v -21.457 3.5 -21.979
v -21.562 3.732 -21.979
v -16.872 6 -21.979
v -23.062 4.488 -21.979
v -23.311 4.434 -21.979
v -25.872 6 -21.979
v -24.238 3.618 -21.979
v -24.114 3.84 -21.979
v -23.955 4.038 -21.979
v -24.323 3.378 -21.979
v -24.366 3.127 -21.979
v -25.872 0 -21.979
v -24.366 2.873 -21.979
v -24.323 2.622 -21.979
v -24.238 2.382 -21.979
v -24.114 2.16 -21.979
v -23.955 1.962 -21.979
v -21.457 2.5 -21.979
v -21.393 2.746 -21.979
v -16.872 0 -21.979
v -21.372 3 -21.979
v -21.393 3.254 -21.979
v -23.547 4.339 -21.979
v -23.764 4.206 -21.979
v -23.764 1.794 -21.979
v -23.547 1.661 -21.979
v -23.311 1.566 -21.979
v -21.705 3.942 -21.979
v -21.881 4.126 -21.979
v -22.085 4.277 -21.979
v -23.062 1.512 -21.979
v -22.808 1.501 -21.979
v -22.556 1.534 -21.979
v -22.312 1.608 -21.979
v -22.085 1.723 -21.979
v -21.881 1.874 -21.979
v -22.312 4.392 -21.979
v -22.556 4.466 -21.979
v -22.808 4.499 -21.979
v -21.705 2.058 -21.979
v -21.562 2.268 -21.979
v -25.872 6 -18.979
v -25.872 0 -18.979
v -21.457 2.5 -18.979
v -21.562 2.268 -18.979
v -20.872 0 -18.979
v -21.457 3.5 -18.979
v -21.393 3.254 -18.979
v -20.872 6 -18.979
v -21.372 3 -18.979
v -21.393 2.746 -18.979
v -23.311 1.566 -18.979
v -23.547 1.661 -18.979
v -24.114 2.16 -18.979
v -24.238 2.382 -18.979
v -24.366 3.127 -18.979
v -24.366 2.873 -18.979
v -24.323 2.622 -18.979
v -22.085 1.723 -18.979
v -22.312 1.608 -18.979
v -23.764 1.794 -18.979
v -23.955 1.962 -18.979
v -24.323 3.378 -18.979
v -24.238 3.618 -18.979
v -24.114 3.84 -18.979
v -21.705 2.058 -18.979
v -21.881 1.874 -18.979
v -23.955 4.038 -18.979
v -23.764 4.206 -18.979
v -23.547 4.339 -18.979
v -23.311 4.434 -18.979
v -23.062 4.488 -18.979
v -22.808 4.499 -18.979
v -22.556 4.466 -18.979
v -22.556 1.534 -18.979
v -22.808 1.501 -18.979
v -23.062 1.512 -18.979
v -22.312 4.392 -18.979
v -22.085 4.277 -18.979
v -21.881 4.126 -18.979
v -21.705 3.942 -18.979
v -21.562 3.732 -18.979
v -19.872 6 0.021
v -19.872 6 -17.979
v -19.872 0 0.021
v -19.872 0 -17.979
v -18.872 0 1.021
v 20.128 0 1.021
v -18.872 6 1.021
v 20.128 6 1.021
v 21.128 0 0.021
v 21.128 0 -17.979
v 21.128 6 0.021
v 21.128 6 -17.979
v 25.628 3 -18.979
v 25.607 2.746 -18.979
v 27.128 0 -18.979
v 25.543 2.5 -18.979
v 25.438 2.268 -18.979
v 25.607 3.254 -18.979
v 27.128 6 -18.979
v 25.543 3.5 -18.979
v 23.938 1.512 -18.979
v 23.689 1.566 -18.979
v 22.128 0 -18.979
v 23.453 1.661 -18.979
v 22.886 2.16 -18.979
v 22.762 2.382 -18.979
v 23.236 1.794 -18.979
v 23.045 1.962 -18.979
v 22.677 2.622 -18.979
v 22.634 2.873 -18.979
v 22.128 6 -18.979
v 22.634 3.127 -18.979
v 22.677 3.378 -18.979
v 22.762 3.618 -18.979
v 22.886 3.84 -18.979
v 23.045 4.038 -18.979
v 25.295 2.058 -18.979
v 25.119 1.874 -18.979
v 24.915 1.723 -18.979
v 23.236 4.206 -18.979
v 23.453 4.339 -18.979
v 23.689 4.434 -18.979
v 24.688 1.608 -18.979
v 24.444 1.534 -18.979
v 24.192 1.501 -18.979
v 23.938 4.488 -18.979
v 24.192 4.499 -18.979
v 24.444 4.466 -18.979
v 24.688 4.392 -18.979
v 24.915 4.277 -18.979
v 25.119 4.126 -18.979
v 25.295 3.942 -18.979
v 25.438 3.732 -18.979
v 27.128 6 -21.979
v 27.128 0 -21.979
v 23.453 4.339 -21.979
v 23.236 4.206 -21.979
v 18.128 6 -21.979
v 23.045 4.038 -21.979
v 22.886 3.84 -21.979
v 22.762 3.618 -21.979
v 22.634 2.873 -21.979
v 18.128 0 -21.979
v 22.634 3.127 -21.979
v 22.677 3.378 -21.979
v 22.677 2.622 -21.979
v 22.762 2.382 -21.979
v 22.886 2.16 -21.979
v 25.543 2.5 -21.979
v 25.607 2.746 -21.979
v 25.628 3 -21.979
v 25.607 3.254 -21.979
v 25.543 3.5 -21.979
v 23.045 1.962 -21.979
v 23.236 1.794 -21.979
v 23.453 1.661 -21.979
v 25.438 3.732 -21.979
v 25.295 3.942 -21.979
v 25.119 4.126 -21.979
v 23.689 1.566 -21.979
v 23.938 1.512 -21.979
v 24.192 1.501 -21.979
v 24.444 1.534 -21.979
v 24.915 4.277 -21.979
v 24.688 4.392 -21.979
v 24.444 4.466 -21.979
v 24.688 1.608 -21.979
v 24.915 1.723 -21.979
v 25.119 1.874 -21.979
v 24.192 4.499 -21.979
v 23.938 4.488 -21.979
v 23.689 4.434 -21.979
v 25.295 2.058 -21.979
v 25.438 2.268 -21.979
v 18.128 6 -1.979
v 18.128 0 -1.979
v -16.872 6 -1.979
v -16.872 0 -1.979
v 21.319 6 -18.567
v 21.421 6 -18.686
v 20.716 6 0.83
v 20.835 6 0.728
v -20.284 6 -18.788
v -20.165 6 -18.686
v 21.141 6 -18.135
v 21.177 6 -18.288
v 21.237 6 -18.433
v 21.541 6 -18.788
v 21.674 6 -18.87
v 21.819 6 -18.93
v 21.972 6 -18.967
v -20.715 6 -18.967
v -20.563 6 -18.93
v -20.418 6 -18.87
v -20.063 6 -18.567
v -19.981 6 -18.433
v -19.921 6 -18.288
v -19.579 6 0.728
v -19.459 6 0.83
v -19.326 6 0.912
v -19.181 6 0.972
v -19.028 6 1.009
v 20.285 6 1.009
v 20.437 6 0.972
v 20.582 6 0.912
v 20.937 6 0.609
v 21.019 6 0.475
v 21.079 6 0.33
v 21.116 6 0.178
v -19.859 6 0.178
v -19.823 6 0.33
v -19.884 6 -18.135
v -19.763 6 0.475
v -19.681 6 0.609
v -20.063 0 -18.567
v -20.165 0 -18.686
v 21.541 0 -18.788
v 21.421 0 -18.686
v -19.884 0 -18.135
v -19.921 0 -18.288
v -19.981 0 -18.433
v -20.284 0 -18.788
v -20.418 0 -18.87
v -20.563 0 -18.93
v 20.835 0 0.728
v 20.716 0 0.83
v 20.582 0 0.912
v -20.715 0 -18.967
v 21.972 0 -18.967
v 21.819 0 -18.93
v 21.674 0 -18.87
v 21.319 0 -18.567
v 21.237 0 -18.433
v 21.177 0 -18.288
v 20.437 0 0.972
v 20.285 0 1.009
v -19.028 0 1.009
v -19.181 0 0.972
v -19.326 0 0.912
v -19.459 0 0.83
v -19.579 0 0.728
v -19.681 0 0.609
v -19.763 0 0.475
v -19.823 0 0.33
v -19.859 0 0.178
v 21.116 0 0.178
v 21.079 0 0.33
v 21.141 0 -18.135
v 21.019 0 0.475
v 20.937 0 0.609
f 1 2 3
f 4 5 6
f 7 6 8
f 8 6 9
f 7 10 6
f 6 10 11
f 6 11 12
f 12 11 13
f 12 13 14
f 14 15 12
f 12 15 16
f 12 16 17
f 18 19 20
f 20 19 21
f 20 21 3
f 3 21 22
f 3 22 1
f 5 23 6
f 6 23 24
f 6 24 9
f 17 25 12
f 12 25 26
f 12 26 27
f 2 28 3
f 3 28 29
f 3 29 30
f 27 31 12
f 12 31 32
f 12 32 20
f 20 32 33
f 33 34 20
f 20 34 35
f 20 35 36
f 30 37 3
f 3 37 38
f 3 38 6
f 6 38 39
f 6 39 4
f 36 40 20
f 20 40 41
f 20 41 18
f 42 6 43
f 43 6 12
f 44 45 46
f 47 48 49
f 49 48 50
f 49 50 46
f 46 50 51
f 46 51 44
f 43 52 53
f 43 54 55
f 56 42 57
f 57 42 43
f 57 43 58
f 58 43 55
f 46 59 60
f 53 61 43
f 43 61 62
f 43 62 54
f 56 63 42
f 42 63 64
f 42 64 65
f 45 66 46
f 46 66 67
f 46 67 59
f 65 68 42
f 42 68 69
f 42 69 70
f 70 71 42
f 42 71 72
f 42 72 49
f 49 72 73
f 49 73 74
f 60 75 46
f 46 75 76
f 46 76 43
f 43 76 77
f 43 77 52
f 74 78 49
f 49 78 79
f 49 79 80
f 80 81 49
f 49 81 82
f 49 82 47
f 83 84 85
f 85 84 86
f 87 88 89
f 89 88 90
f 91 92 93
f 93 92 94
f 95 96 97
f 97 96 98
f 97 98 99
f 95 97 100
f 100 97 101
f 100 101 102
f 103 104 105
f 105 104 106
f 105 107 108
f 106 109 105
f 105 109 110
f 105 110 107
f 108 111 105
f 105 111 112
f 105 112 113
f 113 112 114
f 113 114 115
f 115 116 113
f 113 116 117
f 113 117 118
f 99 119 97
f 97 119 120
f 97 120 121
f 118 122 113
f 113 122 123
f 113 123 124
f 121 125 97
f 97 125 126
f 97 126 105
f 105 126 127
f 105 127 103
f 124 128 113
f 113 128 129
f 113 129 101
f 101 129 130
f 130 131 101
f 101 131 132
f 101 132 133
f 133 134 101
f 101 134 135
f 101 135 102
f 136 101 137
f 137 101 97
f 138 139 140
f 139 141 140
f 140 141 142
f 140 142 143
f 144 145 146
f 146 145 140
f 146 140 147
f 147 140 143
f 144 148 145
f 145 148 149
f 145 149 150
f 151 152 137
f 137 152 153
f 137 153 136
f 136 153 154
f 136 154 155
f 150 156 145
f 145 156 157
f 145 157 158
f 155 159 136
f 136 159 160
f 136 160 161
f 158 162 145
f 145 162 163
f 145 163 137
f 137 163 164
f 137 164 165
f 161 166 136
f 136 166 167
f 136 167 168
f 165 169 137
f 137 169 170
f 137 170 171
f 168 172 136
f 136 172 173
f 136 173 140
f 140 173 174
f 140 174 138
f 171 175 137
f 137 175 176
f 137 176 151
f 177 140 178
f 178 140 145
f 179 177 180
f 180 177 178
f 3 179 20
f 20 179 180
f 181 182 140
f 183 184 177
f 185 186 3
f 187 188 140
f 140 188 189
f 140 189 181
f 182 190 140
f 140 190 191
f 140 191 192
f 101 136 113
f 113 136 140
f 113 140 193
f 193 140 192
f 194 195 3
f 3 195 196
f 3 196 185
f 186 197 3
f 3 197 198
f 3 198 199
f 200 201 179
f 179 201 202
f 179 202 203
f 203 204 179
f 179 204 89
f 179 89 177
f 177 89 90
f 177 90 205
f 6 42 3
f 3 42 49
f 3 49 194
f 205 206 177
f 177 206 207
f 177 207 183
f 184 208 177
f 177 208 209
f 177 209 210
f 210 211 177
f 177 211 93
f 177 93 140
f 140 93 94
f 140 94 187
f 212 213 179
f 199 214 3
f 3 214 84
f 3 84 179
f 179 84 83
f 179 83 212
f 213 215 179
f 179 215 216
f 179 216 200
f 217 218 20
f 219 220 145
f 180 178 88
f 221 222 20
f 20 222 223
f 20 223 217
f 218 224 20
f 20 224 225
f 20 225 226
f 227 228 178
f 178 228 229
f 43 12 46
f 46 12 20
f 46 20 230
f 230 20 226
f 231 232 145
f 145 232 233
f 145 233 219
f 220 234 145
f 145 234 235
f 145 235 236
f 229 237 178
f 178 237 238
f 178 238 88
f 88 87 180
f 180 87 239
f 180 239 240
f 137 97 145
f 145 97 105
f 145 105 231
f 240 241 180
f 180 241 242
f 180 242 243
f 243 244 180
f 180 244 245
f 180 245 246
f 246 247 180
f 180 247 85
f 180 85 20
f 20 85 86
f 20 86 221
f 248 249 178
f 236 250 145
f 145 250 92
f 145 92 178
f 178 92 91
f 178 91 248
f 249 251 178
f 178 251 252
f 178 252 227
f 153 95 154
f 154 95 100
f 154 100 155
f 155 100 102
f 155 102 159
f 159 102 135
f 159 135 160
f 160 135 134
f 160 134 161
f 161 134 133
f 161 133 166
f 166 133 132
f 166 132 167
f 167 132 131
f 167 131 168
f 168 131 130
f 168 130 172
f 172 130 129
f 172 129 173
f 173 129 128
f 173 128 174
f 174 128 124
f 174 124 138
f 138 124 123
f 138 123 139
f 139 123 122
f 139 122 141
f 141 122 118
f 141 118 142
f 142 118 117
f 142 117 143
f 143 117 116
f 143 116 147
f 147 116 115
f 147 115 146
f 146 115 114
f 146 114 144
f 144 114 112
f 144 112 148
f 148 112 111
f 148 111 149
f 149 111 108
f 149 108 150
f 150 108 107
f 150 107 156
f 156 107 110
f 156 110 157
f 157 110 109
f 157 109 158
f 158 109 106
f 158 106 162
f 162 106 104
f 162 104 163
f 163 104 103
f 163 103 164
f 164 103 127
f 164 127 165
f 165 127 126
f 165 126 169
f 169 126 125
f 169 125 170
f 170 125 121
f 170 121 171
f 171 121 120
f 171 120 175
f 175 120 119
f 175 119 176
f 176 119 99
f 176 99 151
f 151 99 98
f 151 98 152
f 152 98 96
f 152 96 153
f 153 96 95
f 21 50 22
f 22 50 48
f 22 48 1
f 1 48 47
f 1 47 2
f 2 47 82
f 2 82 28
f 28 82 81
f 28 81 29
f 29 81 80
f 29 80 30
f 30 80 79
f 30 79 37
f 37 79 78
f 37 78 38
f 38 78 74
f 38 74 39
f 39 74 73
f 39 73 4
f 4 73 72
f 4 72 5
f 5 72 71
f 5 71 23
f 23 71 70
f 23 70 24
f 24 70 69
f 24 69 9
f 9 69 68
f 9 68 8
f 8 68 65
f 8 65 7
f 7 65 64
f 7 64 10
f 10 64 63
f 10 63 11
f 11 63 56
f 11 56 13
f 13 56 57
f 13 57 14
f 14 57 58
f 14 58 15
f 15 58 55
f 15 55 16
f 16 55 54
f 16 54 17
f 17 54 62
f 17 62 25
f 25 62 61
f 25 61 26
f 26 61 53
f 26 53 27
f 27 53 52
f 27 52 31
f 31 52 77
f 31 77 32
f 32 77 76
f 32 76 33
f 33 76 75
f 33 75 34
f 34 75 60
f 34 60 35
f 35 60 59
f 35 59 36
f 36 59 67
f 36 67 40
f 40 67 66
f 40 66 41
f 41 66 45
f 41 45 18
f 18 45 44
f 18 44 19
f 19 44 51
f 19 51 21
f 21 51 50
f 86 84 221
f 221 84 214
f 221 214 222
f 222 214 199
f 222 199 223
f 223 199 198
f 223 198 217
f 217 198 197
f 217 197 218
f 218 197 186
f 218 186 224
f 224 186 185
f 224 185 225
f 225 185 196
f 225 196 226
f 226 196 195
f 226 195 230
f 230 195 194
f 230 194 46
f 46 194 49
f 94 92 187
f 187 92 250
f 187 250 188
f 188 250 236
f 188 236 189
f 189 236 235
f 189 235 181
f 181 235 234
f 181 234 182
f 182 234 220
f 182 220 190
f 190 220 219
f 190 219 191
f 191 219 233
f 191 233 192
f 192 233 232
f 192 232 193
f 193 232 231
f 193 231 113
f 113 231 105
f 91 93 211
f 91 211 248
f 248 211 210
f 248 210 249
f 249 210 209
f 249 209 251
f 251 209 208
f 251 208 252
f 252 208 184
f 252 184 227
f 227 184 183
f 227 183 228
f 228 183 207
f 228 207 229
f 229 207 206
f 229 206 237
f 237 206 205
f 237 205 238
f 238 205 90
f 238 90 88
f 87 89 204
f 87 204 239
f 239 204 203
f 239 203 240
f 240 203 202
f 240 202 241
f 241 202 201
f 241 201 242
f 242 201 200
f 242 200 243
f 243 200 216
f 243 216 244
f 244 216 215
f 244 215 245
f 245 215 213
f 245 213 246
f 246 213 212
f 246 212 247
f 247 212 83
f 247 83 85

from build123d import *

# Parameters (mm, degrees)
SKETCH1_W           = 6
SKETCH1_H           = 3
SKETCH1_W_2         = 41
BOSS_EXTRUDE1_DEPTH = 6
SKETCH2_R           = 1.5
CUT_EXTRUDE1_DEPTH  = 6
FILLET1_R           = 1
FILLET2_R           = 1
FILLET3_R           = 1
FILLET4_R           = 1


with BuildPart() as part:
    # Sketch1 → Boss-Extrude1 (new body)
    with BuildSketch(Plane(origin=(0, 0, 0), x_dir=(1, 0, 0), z_dir=(0, 1, 0))):
        with Locations((-22.87164751, 20.478927203)):
            Rectangle(SKETCH1_W, SKETCH1_H)
        Polygon((-19.87164751, 18.978927203), (-19.87164751, 1.978927203), (-16.87164751, 1.978927203), (-16.87164751, 21.978927203), (-19.87164751, 21.978927203), align=None)
        with Locations((0.62835249, 0.478927203)):
            Rectangle(SKETCH1_W_2, SKETCH1_H)
        Polygon((18.12835249, 21.978927203), (18.12835249, 1.978927203), (21.12835249, 1.978927203), (21.12835249, 18.978927203), (21.12835249, 21.978927203), align=None)
        with Locations((24.12835249, 20.478927203)):
            Rectangle(SKETCH1_W, SKETCH1_H)
    extrude(amount=BOSS_EXTRUDE1_DEPTH)

    # Sketch2 → Cut-Extrude1 (cut)
    with BuildSketch(Plane.XY.offset(-18.978927203)):
        with Locations((-22.87164751, 3)):
            Circle(SKETCH2_R)
        with Locations((24.12835249, 3)):
            Circle(SKETCH2_R)
    extrude(amount=-CUT_EXTRUDE1_DEPTH, mode=Mode.SUBTRACT)

    # Fillet1
    fillet1_edges = [part.edges().sort_by_distance(p)[0] for p in [
        (-19.87164751, 3, -18.978927203),
    ]]
    fillet(fillet1_edges, radius=FILLET1_R)

    # Fillet2
    fillet2_edges = [part.edges().sort_by_distance(p)[0] for p in [
        (21.12835249, 3, -18.978927203),
    ]]
    fillet(fillet2_edges, radius=FILLET2_R)

    # Fillet3
    fillet3_edges = [part.edges().sort_by_distance(p)[0] for p in [
        (21.12835249, 3, 1.021072797),
    ]]
    fillet(fillet3_edges, radius=FILLET3_R)

    # Fillet4
    fillet4_edges = [part.edges().sort_by_distance(p)[0] for p in [
        (-19.87164751, 3, 1.021072797),
    ]]
    fillet(fillet4_edges, radius=FILLET4_R)


solid = part.part
